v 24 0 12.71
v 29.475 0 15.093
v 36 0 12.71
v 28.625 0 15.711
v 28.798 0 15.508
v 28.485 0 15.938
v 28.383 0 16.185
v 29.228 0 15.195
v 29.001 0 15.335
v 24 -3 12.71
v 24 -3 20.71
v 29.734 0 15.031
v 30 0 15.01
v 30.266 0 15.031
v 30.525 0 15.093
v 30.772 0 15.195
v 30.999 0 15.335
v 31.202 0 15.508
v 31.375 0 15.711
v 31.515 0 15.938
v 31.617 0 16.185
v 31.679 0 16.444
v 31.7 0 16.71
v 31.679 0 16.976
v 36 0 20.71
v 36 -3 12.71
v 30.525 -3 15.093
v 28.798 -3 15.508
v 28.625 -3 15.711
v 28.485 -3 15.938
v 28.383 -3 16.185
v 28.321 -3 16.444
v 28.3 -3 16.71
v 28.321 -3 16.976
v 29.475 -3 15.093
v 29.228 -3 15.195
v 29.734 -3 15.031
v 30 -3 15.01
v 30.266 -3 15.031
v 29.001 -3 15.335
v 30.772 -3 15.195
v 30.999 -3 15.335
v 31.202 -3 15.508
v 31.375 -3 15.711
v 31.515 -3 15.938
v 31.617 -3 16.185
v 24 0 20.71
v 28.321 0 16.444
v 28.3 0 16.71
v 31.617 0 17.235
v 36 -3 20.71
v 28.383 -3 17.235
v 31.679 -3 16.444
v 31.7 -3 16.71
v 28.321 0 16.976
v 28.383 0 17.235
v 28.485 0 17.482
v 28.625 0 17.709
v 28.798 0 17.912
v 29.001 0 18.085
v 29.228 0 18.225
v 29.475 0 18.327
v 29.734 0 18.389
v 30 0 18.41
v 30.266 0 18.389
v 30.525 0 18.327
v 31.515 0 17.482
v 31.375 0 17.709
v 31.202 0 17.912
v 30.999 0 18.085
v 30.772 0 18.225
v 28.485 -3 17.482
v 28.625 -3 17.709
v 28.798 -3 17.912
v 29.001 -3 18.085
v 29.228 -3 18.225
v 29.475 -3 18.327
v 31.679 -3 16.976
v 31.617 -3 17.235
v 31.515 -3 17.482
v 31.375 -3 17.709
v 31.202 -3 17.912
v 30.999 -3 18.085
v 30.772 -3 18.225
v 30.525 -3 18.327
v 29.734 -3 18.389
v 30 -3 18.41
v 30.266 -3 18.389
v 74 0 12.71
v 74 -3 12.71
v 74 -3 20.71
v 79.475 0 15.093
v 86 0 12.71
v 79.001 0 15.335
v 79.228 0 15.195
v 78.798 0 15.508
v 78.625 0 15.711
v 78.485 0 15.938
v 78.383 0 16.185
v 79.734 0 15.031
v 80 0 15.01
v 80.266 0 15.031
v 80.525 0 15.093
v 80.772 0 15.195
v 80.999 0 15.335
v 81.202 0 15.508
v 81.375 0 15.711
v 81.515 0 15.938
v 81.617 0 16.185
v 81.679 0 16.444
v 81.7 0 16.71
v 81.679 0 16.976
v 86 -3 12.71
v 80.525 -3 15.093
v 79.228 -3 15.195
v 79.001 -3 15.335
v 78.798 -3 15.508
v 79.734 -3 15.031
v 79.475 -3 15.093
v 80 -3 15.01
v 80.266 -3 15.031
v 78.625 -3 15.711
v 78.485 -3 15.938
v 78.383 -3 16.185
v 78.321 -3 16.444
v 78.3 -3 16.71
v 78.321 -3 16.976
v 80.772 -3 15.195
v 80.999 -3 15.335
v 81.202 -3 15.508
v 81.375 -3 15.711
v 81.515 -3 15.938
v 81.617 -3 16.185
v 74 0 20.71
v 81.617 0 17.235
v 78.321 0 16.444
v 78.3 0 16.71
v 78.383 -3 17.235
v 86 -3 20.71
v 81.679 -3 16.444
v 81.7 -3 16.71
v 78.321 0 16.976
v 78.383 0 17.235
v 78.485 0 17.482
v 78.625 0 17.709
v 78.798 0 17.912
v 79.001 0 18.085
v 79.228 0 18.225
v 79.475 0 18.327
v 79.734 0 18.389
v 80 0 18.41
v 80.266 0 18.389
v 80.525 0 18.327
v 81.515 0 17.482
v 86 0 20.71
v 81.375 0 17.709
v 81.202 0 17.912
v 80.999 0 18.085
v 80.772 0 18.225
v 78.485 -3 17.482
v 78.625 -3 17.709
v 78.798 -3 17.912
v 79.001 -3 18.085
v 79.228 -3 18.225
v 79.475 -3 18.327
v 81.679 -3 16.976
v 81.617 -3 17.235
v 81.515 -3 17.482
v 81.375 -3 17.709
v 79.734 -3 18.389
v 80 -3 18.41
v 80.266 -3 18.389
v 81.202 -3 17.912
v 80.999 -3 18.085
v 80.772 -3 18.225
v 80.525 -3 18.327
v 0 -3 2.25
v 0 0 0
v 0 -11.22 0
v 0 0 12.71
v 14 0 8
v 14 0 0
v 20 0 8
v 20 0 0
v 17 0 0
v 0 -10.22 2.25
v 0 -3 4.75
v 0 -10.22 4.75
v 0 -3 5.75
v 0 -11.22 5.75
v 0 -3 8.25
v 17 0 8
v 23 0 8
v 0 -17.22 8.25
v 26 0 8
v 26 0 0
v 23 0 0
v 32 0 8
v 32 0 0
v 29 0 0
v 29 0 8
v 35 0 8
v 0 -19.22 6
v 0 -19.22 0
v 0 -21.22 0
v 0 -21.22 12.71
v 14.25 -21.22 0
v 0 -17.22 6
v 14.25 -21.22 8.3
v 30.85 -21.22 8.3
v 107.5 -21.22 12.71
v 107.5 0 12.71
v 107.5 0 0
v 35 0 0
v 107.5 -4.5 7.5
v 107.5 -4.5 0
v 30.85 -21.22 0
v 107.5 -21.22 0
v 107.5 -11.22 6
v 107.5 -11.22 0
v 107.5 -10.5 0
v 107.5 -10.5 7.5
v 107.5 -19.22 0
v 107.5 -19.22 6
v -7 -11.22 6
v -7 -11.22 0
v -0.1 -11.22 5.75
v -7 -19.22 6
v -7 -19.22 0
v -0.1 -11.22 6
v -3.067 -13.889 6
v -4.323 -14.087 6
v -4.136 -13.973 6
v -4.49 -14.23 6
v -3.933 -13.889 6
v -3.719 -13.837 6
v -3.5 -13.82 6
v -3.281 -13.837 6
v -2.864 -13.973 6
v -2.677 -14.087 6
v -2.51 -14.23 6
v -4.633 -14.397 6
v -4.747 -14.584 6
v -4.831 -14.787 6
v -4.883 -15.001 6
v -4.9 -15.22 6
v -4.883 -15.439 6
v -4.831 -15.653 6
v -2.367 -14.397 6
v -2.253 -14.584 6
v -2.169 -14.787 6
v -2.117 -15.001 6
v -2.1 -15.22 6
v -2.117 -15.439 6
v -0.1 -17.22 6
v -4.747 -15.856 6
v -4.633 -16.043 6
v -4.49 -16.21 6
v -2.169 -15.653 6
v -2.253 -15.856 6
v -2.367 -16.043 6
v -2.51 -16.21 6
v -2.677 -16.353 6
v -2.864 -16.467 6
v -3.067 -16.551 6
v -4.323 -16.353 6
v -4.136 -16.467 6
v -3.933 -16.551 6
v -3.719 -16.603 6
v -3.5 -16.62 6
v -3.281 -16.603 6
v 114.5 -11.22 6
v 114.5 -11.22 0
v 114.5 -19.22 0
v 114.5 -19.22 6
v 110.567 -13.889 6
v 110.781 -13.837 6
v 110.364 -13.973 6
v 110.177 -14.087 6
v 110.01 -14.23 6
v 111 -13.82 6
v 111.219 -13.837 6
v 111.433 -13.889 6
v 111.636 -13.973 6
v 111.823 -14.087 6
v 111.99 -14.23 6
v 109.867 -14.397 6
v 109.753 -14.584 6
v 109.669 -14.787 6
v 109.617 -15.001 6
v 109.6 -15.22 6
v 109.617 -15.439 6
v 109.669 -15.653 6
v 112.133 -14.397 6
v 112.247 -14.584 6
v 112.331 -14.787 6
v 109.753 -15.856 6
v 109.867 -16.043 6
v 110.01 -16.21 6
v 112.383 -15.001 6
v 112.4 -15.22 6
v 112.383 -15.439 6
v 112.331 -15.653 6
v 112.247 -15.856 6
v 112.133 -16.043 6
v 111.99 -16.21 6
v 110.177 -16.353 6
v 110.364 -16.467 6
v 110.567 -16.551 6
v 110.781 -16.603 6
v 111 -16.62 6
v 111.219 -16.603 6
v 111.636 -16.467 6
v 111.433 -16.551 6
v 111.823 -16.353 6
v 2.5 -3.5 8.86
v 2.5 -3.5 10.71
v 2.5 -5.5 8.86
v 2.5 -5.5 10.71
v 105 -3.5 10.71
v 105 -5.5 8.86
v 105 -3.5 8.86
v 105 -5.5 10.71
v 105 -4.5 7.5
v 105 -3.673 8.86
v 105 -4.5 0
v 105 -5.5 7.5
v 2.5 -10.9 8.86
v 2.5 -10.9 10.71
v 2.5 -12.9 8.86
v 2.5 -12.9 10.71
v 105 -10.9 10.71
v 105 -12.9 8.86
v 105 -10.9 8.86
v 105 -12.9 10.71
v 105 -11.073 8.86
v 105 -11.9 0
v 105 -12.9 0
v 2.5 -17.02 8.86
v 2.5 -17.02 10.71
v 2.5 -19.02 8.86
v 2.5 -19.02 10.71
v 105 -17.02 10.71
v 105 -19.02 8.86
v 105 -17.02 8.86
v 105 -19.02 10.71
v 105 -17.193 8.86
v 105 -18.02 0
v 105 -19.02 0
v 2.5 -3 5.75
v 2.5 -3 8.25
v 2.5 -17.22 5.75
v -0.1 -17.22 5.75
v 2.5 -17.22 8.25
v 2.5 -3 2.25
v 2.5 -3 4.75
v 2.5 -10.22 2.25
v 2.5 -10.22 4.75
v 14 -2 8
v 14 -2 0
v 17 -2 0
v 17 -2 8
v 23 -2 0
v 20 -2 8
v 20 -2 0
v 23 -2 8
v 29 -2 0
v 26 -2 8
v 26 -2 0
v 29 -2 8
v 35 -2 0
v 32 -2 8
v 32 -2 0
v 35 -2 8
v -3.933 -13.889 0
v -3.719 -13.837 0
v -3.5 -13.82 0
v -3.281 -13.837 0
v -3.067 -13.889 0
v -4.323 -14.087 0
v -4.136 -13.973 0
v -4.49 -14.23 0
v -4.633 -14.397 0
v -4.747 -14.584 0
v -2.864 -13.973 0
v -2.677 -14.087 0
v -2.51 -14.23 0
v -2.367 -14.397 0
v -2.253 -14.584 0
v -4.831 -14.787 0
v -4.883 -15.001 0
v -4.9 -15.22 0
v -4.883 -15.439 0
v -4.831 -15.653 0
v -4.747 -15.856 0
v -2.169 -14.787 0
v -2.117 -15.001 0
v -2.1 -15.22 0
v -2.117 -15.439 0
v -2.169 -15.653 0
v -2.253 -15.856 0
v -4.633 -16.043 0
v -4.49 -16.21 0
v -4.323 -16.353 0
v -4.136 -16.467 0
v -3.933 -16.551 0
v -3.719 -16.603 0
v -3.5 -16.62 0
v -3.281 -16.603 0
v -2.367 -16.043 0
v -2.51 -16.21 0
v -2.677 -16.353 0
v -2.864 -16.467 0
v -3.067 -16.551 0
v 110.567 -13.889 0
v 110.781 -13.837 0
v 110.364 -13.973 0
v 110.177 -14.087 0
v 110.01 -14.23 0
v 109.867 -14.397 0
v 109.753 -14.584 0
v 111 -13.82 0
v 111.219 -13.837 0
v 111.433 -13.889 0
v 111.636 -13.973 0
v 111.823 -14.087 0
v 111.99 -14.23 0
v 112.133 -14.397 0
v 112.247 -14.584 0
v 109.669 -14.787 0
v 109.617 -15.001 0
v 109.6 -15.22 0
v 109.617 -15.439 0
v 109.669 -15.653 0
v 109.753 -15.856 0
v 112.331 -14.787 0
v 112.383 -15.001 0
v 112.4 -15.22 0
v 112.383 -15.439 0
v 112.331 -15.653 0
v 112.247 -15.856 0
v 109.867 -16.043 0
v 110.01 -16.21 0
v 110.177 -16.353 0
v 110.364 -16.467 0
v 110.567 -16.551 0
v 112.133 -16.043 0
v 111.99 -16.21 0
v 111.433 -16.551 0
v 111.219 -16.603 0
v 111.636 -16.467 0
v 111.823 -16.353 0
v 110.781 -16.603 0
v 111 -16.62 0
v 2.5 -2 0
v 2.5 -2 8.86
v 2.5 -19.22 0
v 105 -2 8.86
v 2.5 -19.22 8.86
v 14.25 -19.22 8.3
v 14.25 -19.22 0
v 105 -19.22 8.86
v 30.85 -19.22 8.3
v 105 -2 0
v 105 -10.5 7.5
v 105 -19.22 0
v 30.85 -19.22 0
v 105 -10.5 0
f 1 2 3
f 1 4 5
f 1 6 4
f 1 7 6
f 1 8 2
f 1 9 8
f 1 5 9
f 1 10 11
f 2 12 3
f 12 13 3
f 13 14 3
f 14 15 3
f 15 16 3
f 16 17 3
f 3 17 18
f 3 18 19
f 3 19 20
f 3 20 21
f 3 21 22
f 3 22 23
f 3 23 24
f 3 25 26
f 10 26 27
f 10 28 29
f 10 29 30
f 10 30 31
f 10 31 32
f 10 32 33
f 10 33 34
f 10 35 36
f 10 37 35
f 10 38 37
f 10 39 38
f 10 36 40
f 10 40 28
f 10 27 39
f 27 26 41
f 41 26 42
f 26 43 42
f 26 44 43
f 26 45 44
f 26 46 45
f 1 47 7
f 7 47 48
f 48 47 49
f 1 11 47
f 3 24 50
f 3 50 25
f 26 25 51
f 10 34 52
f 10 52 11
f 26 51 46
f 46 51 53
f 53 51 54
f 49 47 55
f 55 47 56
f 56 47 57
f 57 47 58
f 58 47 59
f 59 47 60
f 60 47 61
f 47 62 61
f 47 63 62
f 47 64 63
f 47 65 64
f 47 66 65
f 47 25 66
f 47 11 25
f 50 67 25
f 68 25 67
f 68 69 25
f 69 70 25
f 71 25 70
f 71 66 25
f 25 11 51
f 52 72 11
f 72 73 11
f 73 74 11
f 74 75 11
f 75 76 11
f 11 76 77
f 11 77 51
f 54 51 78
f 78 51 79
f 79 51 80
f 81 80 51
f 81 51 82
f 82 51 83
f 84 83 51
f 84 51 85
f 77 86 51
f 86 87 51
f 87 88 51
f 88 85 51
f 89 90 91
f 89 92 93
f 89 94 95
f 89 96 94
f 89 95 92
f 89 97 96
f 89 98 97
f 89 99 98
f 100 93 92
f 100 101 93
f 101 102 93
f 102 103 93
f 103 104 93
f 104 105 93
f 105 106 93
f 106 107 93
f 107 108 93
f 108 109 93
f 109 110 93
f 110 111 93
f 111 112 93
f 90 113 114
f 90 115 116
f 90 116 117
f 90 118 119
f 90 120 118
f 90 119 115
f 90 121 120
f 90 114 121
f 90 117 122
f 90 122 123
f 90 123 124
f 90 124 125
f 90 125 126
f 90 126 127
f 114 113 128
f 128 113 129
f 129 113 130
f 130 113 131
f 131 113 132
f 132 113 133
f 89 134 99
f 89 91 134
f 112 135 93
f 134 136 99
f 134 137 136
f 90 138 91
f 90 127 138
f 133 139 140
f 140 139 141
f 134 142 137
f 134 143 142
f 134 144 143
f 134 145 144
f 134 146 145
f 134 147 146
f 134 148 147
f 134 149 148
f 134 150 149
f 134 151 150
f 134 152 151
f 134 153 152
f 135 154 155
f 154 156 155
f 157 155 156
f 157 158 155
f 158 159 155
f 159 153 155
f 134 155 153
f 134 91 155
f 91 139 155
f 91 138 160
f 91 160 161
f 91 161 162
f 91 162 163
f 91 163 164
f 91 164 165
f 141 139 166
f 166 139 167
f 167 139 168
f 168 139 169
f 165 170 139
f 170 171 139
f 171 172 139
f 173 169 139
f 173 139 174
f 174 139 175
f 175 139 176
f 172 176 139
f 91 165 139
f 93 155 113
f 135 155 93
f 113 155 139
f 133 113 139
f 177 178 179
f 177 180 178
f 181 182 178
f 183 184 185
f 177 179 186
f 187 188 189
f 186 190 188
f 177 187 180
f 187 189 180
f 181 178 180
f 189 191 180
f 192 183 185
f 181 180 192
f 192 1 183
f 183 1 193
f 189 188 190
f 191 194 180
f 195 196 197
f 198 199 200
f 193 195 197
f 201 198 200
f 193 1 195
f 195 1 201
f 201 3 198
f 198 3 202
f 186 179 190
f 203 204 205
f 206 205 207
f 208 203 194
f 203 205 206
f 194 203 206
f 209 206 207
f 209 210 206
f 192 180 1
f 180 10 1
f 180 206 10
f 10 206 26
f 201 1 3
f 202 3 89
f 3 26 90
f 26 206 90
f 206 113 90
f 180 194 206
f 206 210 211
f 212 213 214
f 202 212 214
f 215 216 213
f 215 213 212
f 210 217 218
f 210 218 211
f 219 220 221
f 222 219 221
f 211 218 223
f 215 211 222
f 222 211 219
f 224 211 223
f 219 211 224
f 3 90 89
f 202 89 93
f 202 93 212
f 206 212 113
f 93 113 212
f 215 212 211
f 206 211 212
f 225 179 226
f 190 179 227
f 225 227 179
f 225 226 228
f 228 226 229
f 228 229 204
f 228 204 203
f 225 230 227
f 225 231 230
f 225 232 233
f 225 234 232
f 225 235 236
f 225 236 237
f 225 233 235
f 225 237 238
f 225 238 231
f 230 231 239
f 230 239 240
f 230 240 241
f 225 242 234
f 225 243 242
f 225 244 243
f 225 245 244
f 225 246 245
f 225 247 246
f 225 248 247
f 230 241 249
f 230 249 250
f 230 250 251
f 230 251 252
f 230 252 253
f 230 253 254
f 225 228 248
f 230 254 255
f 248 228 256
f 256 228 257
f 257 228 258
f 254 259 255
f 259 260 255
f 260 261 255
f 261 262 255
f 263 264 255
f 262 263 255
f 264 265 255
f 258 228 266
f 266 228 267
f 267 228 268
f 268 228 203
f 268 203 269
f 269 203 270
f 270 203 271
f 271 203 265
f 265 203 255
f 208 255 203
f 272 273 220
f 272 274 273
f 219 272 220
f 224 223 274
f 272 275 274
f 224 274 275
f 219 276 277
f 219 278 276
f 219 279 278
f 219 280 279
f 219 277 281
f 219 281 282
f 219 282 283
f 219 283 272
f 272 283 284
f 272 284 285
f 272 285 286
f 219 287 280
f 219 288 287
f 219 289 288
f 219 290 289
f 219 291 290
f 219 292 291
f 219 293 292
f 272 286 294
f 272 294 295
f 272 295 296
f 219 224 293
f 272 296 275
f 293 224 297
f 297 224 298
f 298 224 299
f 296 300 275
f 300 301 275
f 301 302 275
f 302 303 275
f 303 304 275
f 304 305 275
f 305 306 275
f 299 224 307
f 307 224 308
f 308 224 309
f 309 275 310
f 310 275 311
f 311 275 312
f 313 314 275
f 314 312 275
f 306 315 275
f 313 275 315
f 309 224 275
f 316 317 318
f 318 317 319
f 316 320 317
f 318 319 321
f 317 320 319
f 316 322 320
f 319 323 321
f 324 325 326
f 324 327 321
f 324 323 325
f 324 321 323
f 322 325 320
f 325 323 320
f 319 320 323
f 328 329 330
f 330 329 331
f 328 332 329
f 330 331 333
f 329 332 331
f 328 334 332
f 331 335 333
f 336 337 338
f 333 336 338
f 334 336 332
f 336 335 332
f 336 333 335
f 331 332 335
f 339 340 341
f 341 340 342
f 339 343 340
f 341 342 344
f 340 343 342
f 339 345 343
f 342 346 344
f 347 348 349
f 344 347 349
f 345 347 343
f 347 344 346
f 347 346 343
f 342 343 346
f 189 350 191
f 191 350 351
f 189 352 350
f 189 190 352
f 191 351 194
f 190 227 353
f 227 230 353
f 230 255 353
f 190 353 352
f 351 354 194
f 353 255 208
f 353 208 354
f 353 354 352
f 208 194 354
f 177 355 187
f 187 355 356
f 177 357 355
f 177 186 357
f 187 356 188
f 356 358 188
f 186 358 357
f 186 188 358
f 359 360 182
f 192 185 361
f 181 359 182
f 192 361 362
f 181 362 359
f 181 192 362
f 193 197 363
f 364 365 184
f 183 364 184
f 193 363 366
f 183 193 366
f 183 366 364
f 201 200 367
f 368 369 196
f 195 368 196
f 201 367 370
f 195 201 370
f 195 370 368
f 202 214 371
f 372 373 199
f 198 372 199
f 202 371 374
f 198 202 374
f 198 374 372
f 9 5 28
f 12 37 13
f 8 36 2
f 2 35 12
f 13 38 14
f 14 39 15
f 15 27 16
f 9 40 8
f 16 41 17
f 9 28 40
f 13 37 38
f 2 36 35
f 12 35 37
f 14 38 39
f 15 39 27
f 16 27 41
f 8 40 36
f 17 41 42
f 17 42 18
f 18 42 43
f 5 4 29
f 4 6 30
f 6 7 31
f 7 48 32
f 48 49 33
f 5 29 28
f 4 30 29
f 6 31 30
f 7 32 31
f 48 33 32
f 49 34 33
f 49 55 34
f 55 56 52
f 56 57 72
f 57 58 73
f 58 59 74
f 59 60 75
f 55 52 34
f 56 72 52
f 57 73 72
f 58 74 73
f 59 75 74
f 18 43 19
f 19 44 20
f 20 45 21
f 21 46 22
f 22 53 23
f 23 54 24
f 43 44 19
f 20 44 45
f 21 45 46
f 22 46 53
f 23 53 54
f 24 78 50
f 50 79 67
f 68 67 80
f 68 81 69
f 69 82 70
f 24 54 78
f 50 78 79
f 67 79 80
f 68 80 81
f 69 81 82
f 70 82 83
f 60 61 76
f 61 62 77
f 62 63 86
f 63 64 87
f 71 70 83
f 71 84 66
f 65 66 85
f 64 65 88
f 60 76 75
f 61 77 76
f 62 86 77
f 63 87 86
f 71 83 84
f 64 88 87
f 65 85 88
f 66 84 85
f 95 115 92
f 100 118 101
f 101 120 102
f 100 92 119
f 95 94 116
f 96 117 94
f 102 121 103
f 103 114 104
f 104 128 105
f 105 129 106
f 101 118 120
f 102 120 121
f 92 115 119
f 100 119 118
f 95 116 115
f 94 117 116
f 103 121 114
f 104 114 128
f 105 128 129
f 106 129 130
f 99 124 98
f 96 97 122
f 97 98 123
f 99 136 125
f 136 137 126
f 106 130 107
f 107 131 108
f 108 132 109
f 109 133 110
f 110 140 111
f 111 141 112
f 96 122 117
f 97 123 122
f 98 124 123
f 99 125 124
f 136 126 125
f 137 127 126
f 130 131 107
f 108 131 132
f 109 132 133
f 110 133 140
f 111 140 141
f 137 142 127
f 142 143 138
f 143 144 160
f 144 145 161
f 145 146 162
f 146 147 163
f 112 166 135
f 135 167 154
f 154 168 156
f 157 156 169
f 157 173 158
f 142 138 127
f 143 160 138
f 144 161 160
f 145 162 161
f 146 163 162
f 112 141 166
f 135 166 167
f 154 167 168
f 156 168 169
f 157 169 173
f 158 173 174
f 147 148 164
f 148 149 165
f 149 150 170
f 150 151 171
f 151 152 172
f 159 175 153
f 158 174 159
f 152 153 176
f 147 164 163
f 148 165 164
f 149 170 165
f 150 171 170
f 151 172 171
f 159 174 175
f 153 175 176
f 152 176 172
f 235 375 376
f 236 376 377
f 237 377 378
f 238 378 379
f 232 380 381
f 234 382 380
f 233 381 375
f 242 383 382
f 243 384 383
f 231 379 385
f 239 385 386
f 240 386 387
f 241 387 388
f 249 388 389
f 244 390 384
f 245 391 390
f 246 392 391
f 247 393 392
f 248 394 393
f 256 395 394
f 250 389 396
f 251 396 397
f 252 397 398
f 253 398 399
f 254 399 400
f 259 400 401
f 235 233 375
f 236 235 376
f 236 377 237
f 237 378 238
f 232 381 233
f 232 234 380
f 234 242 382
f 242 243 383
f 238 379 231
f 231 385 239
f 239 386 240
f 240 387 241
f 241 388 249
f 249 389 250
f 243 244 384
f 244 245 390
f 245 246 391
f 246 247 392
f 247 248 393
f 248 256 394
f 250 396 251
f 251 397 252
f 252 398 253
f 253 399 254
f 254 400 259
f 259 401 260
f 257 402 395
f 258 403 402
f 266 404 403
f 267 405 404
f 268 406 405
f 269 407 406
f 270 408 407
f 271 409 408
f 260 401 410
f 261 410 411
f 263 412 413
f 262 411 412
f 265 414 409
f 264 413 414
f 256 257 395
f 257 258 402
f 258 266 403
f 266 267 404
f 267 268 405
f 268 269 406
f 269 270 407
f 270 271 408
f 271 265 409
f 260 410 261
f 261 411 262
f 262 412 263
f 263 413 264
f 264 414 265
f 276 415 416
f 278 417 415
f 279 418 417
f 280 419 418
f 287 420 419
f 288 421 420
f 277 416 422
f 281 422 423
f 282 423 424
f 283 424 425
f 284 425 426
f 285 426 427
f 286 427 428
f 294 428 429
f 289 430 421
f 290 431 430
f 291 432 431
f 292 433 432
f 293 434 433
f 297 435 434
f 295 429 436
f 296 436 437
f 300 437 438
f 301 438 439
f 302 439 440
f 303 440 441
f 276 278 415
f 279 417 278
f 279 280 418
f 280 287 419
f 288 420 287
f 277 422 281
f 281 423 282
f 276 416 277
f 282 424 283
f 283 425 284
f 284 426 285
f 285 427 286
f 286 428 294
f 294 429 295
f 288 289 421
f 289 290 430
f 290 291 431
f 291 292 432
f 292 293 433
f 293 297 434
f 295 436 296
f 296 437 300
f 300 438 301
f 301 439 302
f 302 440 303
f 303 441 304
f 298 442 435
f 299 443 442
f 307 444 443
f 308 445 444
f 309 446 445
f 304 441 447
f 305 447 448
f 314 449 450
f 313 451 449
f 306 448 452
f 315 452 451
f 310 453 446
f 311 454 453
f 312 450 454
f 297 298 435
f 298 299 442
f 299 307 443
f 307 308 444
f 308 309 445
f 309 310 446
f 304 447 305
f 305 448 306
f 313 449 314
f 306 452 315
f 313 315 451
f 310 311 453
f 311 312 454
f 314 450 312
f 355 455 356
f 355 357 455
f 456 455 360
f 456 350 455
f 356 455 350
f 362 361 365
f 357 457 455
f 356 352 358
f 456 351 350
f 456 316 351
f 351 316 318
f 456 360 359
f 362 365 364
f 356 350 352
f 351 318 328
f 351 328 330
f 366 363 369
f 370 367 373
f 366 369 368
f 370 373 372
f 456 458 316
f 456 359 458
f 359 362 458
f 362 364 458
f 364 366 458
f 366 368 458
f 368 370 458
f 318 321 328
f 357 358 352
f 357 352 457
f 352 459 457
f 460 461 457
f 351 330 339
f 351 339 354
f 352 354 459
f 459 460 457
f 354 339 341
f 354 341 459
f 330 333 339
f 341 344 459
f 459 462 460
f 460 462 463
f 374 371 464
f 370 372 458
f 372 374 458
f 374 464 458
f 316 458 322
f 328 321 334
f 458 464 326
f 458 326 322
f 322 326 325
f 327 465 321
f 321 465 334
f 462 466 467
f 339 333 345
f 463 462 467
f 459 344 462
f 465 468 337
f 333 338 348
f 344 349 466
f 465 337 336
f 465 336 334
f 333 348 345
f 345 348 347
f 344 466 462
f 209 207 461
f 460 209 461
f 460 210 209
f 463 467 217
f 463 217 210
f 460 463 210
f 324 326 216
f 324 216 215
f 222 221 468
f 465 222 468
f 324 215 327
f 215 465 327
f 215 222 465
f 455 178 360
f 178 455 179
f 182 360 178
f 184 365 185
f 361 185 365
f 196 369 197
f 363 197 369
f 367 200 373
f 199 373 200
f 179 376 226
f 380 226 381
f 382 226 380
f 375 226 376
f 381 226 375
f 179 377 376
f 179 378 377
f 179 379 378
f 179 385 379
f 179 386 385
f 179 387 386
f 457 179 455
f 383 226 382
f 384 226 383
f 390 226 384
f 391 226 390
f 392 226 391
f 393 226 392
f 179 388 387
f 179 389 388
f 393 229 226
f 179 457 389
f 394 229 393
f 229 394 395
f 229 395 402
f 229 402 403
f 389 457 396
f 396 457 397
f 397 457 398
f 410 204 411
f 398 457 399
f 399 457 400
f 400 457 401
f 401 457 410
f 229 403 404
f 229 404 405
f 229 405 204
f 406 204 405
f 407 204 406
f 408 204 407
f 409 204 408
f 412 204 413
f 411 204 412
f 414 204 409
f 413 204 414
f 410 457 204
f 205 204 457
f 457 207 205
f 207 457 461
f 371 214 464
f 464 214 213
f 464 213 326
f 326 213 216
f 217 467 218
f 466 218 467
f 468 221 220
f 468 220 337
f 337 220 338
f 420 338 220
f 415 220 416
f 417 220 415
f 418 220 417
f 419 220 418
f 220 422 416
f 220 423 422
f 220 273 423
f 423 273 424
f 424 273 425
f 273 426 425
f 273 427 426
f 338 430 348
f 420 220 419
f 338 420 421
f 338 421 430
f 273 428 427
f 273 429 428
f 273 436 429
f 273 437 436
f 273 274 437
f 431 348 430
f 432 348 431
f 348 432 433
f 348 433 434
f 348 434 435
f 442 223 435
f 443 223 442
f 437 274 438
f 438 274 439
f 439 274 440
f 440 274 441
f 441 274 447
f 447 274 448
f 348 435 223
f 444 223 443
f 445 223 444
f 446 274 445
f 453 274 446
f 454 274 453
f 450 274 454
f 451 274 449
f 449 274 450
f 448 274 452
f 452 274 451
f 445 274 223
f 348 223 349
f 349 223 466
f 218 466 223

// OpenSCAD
// file: make_co_clamshell.scad
// ============================================================================
// CyberWing — CO sensor CLAMSHELL CARD CAGE (SPEC 3-board stick)
// The stick is 3 detachable boards on header plugs (CP2102 USB / D-ULPSM AFE /
// SPEC PSCB cell). Vertical-split clamshell: each half-shell carries 3 groove
// tiers; the assembled stack LAYS IN sideways (no sliding stress on the header
// joints), the second half closes over, 2× M3 screws through end lugs.
// Crack it open to swap any single layer (the cell board is the consumable).
//   X = length (cell end x=0, USB +X) ; Y = split at 0 ; Z = up.
// Cell module + membrane face UP through an open ceiling window. Vented cell
// end + floor. Print halves seam-face down (no supports).
// part = "A" (screw-head half) | "B" (pilot half) | "both" (assembled view)
// ============================================================================
$fn = 40;
part = "both";

// ---- measured stack ----
PCB_W = 20.92; PCB_T = 1.6;
GAP1 = 5.80;                // USB board -> AFE (measured)
GAP2 = 4.52;                // AFE -> cell board (derived from 15.12; CONFIRM)
CELL_X = 19.80;             // cell module center from the cell end
MOD_SQ = 15.58;             // black cell module side
PLUG_PROT = 12;             // USB-A metal beyond the board end (std; CONFIRM)
STICK_L = 114.00;           // overall incl. plug

// ---- cage ----
ENG = 1.6; WALL = 2.0; FLOOR = 2.0; TOP = 2.0; END = 2.5;
FLR_GAP = 1.5; SLOT_H = PCB_T + 0.4; CEIL_CLR = 0.6;
WIN = 16.6;                 // ceiling window over the module
USB_W = 15; USB_H = 6;      // end aperture (plug passes, boards can't)
EAR_X = [30, 80]; M3 = 3.4;

// ---- derived ----
b1 = FLR_GAP;                       // USB board bottom
b2 = b1 + PCB_T + GAP1;             // AFE bottom
b3 = b2 + PCB_T + GAP2;             // cell board bottom
IH = b3 + PCB_T + CEIL_CLR;
OH = FLOOR + IH + TOP;
RIBY = PCB_W/2 - ENG;               // rib inner face
GFLR = PCB_W/2 + 0.25;              // groove floor
OW = 2*(GFLR + WALL);
CAV_L = STICK_L - PLUG_PROT + 0.5;  // boards only; plug exits the end wall
OL = END + CAV_L + END;
x_cell = END + 0.25 + CELL_X;
lugs = [[-3.5, OH-6], [OL+3.5, OH-6]];   // [x, z] screw centers, both ends up top

module shell() {
  difference() {
    union() {
      translate([0, -OW/2, 0]) cube([OL, OW, OH]);                      // body
      translate([-7, -6, OH-10]) cube([7, 12, 8]);                      // -X lug
      translate([OL, -6, OH-10]) cube([7, 12, 8]);                      // +X lug
      for (x = EAR_X, sy = [-1,1])                                      // 4 ears
        translate([x-6, sy>0 ? OW/2 : -OW/2-8, 0]) cube([12, 8, 3]);
    }
    translate([END, -RIBY, FLOOR]) cube([CAV_L, 2*RIBY, IH]);           // cavity between ribs
    for (tb = [b1, b2, b3])                                             // 3 groove tiers
      translate([END, -GFLR, FLOOR+tb]) cube([CAV_L, 2*GFLR, SLOT_H]);
    translate([x_cell-WIN/2, -WIN/2, FLOOR+IH-0.1])                     // open cell window
      cube([WIN, WIN, TOP+0.2]);
    translate([OL-END-0.1, -USB_W/2, FLOOR+b1+PCB_T-0.6])               // USB aperture
      cube([END+0.2, USB_W, USB_H]);
    for (vy = [-7, 7])                                                  // outer cell-end vents (full height, beside the lug)
      translate([-0.1, vy-1.25, FLOOR+1]) cube([END+0.2, 2.5, IH-3]);
    for (vy = [-3.5, 3.5])                                              // inner vents stop below the lug — solid wall behind the screw boss
      translate([-0.1, vy-1.25, FLOOR+1]) cube([END+0.2, 2.5, (OH-11)-(FLOOR+1)]);
    for (vx = [14, 20, 26, 32])                                         // floor vents under the cell
      translate([vx, -8, -0.1]) cube([3, 16, FLOOR+0.2]);
    for (x = EAR_X, sy = [-1,1])                                        // ear M3
      translate([x, sy*(OW/2+4), -0.1]) cylinder(d=M3, h=3.2);
    for (p = lugs)                                                      // lug pilots (M3 self-tap in B)
      translate([p[0], -6.1, p[1]]) rotate([-90,0,0]) cylinder(d=2.8, h=12.2);
  }
}

module halfA() {                       // y<0, screw heads
  difference() {
    intersection() { shell(); translate([-60,-60,-5]) cube([OL+120, 60, OH+20]); }
    for (p = lugs) {
      translate([p[0], -6.1, p[1]]) rotate([-90,0,0]) cylinder(d=M3, h=6.2);      // clearance
      translate([p[0], -6.1, p[1]]) rotate([-90,0,0]) cylinder(d=6, h=2.6);       // head cb
    }
  }
}
module halfB() intersection() { shell(); translate([-60,0,-5]) cube([OL+120, 60, OH+20]); }

if (part=="both") { color("SteelBlue") halfA(); color("LightGreen") halfB(); }
if (part=="A") rotate([-90,0,0]) halfA();     // seam-face down for printing
if (part=="B") rotate([90,0,0])  halfB();
// main file
// ============================================================================
// CO clamshell — HALF B (pilot half, boards lay in here first). Geometry lives
// in make_co_clamshell.scad; this file just poses it. orient = "print"
// (seam-face down, as sliced) or "assembled" (in-place, y>0 half).
// ============================================================================
use <make_co_clamshell.scad>
orient = "print";

if (orient == "print") rotate([90,0,0]) halfB();
else halfB();
